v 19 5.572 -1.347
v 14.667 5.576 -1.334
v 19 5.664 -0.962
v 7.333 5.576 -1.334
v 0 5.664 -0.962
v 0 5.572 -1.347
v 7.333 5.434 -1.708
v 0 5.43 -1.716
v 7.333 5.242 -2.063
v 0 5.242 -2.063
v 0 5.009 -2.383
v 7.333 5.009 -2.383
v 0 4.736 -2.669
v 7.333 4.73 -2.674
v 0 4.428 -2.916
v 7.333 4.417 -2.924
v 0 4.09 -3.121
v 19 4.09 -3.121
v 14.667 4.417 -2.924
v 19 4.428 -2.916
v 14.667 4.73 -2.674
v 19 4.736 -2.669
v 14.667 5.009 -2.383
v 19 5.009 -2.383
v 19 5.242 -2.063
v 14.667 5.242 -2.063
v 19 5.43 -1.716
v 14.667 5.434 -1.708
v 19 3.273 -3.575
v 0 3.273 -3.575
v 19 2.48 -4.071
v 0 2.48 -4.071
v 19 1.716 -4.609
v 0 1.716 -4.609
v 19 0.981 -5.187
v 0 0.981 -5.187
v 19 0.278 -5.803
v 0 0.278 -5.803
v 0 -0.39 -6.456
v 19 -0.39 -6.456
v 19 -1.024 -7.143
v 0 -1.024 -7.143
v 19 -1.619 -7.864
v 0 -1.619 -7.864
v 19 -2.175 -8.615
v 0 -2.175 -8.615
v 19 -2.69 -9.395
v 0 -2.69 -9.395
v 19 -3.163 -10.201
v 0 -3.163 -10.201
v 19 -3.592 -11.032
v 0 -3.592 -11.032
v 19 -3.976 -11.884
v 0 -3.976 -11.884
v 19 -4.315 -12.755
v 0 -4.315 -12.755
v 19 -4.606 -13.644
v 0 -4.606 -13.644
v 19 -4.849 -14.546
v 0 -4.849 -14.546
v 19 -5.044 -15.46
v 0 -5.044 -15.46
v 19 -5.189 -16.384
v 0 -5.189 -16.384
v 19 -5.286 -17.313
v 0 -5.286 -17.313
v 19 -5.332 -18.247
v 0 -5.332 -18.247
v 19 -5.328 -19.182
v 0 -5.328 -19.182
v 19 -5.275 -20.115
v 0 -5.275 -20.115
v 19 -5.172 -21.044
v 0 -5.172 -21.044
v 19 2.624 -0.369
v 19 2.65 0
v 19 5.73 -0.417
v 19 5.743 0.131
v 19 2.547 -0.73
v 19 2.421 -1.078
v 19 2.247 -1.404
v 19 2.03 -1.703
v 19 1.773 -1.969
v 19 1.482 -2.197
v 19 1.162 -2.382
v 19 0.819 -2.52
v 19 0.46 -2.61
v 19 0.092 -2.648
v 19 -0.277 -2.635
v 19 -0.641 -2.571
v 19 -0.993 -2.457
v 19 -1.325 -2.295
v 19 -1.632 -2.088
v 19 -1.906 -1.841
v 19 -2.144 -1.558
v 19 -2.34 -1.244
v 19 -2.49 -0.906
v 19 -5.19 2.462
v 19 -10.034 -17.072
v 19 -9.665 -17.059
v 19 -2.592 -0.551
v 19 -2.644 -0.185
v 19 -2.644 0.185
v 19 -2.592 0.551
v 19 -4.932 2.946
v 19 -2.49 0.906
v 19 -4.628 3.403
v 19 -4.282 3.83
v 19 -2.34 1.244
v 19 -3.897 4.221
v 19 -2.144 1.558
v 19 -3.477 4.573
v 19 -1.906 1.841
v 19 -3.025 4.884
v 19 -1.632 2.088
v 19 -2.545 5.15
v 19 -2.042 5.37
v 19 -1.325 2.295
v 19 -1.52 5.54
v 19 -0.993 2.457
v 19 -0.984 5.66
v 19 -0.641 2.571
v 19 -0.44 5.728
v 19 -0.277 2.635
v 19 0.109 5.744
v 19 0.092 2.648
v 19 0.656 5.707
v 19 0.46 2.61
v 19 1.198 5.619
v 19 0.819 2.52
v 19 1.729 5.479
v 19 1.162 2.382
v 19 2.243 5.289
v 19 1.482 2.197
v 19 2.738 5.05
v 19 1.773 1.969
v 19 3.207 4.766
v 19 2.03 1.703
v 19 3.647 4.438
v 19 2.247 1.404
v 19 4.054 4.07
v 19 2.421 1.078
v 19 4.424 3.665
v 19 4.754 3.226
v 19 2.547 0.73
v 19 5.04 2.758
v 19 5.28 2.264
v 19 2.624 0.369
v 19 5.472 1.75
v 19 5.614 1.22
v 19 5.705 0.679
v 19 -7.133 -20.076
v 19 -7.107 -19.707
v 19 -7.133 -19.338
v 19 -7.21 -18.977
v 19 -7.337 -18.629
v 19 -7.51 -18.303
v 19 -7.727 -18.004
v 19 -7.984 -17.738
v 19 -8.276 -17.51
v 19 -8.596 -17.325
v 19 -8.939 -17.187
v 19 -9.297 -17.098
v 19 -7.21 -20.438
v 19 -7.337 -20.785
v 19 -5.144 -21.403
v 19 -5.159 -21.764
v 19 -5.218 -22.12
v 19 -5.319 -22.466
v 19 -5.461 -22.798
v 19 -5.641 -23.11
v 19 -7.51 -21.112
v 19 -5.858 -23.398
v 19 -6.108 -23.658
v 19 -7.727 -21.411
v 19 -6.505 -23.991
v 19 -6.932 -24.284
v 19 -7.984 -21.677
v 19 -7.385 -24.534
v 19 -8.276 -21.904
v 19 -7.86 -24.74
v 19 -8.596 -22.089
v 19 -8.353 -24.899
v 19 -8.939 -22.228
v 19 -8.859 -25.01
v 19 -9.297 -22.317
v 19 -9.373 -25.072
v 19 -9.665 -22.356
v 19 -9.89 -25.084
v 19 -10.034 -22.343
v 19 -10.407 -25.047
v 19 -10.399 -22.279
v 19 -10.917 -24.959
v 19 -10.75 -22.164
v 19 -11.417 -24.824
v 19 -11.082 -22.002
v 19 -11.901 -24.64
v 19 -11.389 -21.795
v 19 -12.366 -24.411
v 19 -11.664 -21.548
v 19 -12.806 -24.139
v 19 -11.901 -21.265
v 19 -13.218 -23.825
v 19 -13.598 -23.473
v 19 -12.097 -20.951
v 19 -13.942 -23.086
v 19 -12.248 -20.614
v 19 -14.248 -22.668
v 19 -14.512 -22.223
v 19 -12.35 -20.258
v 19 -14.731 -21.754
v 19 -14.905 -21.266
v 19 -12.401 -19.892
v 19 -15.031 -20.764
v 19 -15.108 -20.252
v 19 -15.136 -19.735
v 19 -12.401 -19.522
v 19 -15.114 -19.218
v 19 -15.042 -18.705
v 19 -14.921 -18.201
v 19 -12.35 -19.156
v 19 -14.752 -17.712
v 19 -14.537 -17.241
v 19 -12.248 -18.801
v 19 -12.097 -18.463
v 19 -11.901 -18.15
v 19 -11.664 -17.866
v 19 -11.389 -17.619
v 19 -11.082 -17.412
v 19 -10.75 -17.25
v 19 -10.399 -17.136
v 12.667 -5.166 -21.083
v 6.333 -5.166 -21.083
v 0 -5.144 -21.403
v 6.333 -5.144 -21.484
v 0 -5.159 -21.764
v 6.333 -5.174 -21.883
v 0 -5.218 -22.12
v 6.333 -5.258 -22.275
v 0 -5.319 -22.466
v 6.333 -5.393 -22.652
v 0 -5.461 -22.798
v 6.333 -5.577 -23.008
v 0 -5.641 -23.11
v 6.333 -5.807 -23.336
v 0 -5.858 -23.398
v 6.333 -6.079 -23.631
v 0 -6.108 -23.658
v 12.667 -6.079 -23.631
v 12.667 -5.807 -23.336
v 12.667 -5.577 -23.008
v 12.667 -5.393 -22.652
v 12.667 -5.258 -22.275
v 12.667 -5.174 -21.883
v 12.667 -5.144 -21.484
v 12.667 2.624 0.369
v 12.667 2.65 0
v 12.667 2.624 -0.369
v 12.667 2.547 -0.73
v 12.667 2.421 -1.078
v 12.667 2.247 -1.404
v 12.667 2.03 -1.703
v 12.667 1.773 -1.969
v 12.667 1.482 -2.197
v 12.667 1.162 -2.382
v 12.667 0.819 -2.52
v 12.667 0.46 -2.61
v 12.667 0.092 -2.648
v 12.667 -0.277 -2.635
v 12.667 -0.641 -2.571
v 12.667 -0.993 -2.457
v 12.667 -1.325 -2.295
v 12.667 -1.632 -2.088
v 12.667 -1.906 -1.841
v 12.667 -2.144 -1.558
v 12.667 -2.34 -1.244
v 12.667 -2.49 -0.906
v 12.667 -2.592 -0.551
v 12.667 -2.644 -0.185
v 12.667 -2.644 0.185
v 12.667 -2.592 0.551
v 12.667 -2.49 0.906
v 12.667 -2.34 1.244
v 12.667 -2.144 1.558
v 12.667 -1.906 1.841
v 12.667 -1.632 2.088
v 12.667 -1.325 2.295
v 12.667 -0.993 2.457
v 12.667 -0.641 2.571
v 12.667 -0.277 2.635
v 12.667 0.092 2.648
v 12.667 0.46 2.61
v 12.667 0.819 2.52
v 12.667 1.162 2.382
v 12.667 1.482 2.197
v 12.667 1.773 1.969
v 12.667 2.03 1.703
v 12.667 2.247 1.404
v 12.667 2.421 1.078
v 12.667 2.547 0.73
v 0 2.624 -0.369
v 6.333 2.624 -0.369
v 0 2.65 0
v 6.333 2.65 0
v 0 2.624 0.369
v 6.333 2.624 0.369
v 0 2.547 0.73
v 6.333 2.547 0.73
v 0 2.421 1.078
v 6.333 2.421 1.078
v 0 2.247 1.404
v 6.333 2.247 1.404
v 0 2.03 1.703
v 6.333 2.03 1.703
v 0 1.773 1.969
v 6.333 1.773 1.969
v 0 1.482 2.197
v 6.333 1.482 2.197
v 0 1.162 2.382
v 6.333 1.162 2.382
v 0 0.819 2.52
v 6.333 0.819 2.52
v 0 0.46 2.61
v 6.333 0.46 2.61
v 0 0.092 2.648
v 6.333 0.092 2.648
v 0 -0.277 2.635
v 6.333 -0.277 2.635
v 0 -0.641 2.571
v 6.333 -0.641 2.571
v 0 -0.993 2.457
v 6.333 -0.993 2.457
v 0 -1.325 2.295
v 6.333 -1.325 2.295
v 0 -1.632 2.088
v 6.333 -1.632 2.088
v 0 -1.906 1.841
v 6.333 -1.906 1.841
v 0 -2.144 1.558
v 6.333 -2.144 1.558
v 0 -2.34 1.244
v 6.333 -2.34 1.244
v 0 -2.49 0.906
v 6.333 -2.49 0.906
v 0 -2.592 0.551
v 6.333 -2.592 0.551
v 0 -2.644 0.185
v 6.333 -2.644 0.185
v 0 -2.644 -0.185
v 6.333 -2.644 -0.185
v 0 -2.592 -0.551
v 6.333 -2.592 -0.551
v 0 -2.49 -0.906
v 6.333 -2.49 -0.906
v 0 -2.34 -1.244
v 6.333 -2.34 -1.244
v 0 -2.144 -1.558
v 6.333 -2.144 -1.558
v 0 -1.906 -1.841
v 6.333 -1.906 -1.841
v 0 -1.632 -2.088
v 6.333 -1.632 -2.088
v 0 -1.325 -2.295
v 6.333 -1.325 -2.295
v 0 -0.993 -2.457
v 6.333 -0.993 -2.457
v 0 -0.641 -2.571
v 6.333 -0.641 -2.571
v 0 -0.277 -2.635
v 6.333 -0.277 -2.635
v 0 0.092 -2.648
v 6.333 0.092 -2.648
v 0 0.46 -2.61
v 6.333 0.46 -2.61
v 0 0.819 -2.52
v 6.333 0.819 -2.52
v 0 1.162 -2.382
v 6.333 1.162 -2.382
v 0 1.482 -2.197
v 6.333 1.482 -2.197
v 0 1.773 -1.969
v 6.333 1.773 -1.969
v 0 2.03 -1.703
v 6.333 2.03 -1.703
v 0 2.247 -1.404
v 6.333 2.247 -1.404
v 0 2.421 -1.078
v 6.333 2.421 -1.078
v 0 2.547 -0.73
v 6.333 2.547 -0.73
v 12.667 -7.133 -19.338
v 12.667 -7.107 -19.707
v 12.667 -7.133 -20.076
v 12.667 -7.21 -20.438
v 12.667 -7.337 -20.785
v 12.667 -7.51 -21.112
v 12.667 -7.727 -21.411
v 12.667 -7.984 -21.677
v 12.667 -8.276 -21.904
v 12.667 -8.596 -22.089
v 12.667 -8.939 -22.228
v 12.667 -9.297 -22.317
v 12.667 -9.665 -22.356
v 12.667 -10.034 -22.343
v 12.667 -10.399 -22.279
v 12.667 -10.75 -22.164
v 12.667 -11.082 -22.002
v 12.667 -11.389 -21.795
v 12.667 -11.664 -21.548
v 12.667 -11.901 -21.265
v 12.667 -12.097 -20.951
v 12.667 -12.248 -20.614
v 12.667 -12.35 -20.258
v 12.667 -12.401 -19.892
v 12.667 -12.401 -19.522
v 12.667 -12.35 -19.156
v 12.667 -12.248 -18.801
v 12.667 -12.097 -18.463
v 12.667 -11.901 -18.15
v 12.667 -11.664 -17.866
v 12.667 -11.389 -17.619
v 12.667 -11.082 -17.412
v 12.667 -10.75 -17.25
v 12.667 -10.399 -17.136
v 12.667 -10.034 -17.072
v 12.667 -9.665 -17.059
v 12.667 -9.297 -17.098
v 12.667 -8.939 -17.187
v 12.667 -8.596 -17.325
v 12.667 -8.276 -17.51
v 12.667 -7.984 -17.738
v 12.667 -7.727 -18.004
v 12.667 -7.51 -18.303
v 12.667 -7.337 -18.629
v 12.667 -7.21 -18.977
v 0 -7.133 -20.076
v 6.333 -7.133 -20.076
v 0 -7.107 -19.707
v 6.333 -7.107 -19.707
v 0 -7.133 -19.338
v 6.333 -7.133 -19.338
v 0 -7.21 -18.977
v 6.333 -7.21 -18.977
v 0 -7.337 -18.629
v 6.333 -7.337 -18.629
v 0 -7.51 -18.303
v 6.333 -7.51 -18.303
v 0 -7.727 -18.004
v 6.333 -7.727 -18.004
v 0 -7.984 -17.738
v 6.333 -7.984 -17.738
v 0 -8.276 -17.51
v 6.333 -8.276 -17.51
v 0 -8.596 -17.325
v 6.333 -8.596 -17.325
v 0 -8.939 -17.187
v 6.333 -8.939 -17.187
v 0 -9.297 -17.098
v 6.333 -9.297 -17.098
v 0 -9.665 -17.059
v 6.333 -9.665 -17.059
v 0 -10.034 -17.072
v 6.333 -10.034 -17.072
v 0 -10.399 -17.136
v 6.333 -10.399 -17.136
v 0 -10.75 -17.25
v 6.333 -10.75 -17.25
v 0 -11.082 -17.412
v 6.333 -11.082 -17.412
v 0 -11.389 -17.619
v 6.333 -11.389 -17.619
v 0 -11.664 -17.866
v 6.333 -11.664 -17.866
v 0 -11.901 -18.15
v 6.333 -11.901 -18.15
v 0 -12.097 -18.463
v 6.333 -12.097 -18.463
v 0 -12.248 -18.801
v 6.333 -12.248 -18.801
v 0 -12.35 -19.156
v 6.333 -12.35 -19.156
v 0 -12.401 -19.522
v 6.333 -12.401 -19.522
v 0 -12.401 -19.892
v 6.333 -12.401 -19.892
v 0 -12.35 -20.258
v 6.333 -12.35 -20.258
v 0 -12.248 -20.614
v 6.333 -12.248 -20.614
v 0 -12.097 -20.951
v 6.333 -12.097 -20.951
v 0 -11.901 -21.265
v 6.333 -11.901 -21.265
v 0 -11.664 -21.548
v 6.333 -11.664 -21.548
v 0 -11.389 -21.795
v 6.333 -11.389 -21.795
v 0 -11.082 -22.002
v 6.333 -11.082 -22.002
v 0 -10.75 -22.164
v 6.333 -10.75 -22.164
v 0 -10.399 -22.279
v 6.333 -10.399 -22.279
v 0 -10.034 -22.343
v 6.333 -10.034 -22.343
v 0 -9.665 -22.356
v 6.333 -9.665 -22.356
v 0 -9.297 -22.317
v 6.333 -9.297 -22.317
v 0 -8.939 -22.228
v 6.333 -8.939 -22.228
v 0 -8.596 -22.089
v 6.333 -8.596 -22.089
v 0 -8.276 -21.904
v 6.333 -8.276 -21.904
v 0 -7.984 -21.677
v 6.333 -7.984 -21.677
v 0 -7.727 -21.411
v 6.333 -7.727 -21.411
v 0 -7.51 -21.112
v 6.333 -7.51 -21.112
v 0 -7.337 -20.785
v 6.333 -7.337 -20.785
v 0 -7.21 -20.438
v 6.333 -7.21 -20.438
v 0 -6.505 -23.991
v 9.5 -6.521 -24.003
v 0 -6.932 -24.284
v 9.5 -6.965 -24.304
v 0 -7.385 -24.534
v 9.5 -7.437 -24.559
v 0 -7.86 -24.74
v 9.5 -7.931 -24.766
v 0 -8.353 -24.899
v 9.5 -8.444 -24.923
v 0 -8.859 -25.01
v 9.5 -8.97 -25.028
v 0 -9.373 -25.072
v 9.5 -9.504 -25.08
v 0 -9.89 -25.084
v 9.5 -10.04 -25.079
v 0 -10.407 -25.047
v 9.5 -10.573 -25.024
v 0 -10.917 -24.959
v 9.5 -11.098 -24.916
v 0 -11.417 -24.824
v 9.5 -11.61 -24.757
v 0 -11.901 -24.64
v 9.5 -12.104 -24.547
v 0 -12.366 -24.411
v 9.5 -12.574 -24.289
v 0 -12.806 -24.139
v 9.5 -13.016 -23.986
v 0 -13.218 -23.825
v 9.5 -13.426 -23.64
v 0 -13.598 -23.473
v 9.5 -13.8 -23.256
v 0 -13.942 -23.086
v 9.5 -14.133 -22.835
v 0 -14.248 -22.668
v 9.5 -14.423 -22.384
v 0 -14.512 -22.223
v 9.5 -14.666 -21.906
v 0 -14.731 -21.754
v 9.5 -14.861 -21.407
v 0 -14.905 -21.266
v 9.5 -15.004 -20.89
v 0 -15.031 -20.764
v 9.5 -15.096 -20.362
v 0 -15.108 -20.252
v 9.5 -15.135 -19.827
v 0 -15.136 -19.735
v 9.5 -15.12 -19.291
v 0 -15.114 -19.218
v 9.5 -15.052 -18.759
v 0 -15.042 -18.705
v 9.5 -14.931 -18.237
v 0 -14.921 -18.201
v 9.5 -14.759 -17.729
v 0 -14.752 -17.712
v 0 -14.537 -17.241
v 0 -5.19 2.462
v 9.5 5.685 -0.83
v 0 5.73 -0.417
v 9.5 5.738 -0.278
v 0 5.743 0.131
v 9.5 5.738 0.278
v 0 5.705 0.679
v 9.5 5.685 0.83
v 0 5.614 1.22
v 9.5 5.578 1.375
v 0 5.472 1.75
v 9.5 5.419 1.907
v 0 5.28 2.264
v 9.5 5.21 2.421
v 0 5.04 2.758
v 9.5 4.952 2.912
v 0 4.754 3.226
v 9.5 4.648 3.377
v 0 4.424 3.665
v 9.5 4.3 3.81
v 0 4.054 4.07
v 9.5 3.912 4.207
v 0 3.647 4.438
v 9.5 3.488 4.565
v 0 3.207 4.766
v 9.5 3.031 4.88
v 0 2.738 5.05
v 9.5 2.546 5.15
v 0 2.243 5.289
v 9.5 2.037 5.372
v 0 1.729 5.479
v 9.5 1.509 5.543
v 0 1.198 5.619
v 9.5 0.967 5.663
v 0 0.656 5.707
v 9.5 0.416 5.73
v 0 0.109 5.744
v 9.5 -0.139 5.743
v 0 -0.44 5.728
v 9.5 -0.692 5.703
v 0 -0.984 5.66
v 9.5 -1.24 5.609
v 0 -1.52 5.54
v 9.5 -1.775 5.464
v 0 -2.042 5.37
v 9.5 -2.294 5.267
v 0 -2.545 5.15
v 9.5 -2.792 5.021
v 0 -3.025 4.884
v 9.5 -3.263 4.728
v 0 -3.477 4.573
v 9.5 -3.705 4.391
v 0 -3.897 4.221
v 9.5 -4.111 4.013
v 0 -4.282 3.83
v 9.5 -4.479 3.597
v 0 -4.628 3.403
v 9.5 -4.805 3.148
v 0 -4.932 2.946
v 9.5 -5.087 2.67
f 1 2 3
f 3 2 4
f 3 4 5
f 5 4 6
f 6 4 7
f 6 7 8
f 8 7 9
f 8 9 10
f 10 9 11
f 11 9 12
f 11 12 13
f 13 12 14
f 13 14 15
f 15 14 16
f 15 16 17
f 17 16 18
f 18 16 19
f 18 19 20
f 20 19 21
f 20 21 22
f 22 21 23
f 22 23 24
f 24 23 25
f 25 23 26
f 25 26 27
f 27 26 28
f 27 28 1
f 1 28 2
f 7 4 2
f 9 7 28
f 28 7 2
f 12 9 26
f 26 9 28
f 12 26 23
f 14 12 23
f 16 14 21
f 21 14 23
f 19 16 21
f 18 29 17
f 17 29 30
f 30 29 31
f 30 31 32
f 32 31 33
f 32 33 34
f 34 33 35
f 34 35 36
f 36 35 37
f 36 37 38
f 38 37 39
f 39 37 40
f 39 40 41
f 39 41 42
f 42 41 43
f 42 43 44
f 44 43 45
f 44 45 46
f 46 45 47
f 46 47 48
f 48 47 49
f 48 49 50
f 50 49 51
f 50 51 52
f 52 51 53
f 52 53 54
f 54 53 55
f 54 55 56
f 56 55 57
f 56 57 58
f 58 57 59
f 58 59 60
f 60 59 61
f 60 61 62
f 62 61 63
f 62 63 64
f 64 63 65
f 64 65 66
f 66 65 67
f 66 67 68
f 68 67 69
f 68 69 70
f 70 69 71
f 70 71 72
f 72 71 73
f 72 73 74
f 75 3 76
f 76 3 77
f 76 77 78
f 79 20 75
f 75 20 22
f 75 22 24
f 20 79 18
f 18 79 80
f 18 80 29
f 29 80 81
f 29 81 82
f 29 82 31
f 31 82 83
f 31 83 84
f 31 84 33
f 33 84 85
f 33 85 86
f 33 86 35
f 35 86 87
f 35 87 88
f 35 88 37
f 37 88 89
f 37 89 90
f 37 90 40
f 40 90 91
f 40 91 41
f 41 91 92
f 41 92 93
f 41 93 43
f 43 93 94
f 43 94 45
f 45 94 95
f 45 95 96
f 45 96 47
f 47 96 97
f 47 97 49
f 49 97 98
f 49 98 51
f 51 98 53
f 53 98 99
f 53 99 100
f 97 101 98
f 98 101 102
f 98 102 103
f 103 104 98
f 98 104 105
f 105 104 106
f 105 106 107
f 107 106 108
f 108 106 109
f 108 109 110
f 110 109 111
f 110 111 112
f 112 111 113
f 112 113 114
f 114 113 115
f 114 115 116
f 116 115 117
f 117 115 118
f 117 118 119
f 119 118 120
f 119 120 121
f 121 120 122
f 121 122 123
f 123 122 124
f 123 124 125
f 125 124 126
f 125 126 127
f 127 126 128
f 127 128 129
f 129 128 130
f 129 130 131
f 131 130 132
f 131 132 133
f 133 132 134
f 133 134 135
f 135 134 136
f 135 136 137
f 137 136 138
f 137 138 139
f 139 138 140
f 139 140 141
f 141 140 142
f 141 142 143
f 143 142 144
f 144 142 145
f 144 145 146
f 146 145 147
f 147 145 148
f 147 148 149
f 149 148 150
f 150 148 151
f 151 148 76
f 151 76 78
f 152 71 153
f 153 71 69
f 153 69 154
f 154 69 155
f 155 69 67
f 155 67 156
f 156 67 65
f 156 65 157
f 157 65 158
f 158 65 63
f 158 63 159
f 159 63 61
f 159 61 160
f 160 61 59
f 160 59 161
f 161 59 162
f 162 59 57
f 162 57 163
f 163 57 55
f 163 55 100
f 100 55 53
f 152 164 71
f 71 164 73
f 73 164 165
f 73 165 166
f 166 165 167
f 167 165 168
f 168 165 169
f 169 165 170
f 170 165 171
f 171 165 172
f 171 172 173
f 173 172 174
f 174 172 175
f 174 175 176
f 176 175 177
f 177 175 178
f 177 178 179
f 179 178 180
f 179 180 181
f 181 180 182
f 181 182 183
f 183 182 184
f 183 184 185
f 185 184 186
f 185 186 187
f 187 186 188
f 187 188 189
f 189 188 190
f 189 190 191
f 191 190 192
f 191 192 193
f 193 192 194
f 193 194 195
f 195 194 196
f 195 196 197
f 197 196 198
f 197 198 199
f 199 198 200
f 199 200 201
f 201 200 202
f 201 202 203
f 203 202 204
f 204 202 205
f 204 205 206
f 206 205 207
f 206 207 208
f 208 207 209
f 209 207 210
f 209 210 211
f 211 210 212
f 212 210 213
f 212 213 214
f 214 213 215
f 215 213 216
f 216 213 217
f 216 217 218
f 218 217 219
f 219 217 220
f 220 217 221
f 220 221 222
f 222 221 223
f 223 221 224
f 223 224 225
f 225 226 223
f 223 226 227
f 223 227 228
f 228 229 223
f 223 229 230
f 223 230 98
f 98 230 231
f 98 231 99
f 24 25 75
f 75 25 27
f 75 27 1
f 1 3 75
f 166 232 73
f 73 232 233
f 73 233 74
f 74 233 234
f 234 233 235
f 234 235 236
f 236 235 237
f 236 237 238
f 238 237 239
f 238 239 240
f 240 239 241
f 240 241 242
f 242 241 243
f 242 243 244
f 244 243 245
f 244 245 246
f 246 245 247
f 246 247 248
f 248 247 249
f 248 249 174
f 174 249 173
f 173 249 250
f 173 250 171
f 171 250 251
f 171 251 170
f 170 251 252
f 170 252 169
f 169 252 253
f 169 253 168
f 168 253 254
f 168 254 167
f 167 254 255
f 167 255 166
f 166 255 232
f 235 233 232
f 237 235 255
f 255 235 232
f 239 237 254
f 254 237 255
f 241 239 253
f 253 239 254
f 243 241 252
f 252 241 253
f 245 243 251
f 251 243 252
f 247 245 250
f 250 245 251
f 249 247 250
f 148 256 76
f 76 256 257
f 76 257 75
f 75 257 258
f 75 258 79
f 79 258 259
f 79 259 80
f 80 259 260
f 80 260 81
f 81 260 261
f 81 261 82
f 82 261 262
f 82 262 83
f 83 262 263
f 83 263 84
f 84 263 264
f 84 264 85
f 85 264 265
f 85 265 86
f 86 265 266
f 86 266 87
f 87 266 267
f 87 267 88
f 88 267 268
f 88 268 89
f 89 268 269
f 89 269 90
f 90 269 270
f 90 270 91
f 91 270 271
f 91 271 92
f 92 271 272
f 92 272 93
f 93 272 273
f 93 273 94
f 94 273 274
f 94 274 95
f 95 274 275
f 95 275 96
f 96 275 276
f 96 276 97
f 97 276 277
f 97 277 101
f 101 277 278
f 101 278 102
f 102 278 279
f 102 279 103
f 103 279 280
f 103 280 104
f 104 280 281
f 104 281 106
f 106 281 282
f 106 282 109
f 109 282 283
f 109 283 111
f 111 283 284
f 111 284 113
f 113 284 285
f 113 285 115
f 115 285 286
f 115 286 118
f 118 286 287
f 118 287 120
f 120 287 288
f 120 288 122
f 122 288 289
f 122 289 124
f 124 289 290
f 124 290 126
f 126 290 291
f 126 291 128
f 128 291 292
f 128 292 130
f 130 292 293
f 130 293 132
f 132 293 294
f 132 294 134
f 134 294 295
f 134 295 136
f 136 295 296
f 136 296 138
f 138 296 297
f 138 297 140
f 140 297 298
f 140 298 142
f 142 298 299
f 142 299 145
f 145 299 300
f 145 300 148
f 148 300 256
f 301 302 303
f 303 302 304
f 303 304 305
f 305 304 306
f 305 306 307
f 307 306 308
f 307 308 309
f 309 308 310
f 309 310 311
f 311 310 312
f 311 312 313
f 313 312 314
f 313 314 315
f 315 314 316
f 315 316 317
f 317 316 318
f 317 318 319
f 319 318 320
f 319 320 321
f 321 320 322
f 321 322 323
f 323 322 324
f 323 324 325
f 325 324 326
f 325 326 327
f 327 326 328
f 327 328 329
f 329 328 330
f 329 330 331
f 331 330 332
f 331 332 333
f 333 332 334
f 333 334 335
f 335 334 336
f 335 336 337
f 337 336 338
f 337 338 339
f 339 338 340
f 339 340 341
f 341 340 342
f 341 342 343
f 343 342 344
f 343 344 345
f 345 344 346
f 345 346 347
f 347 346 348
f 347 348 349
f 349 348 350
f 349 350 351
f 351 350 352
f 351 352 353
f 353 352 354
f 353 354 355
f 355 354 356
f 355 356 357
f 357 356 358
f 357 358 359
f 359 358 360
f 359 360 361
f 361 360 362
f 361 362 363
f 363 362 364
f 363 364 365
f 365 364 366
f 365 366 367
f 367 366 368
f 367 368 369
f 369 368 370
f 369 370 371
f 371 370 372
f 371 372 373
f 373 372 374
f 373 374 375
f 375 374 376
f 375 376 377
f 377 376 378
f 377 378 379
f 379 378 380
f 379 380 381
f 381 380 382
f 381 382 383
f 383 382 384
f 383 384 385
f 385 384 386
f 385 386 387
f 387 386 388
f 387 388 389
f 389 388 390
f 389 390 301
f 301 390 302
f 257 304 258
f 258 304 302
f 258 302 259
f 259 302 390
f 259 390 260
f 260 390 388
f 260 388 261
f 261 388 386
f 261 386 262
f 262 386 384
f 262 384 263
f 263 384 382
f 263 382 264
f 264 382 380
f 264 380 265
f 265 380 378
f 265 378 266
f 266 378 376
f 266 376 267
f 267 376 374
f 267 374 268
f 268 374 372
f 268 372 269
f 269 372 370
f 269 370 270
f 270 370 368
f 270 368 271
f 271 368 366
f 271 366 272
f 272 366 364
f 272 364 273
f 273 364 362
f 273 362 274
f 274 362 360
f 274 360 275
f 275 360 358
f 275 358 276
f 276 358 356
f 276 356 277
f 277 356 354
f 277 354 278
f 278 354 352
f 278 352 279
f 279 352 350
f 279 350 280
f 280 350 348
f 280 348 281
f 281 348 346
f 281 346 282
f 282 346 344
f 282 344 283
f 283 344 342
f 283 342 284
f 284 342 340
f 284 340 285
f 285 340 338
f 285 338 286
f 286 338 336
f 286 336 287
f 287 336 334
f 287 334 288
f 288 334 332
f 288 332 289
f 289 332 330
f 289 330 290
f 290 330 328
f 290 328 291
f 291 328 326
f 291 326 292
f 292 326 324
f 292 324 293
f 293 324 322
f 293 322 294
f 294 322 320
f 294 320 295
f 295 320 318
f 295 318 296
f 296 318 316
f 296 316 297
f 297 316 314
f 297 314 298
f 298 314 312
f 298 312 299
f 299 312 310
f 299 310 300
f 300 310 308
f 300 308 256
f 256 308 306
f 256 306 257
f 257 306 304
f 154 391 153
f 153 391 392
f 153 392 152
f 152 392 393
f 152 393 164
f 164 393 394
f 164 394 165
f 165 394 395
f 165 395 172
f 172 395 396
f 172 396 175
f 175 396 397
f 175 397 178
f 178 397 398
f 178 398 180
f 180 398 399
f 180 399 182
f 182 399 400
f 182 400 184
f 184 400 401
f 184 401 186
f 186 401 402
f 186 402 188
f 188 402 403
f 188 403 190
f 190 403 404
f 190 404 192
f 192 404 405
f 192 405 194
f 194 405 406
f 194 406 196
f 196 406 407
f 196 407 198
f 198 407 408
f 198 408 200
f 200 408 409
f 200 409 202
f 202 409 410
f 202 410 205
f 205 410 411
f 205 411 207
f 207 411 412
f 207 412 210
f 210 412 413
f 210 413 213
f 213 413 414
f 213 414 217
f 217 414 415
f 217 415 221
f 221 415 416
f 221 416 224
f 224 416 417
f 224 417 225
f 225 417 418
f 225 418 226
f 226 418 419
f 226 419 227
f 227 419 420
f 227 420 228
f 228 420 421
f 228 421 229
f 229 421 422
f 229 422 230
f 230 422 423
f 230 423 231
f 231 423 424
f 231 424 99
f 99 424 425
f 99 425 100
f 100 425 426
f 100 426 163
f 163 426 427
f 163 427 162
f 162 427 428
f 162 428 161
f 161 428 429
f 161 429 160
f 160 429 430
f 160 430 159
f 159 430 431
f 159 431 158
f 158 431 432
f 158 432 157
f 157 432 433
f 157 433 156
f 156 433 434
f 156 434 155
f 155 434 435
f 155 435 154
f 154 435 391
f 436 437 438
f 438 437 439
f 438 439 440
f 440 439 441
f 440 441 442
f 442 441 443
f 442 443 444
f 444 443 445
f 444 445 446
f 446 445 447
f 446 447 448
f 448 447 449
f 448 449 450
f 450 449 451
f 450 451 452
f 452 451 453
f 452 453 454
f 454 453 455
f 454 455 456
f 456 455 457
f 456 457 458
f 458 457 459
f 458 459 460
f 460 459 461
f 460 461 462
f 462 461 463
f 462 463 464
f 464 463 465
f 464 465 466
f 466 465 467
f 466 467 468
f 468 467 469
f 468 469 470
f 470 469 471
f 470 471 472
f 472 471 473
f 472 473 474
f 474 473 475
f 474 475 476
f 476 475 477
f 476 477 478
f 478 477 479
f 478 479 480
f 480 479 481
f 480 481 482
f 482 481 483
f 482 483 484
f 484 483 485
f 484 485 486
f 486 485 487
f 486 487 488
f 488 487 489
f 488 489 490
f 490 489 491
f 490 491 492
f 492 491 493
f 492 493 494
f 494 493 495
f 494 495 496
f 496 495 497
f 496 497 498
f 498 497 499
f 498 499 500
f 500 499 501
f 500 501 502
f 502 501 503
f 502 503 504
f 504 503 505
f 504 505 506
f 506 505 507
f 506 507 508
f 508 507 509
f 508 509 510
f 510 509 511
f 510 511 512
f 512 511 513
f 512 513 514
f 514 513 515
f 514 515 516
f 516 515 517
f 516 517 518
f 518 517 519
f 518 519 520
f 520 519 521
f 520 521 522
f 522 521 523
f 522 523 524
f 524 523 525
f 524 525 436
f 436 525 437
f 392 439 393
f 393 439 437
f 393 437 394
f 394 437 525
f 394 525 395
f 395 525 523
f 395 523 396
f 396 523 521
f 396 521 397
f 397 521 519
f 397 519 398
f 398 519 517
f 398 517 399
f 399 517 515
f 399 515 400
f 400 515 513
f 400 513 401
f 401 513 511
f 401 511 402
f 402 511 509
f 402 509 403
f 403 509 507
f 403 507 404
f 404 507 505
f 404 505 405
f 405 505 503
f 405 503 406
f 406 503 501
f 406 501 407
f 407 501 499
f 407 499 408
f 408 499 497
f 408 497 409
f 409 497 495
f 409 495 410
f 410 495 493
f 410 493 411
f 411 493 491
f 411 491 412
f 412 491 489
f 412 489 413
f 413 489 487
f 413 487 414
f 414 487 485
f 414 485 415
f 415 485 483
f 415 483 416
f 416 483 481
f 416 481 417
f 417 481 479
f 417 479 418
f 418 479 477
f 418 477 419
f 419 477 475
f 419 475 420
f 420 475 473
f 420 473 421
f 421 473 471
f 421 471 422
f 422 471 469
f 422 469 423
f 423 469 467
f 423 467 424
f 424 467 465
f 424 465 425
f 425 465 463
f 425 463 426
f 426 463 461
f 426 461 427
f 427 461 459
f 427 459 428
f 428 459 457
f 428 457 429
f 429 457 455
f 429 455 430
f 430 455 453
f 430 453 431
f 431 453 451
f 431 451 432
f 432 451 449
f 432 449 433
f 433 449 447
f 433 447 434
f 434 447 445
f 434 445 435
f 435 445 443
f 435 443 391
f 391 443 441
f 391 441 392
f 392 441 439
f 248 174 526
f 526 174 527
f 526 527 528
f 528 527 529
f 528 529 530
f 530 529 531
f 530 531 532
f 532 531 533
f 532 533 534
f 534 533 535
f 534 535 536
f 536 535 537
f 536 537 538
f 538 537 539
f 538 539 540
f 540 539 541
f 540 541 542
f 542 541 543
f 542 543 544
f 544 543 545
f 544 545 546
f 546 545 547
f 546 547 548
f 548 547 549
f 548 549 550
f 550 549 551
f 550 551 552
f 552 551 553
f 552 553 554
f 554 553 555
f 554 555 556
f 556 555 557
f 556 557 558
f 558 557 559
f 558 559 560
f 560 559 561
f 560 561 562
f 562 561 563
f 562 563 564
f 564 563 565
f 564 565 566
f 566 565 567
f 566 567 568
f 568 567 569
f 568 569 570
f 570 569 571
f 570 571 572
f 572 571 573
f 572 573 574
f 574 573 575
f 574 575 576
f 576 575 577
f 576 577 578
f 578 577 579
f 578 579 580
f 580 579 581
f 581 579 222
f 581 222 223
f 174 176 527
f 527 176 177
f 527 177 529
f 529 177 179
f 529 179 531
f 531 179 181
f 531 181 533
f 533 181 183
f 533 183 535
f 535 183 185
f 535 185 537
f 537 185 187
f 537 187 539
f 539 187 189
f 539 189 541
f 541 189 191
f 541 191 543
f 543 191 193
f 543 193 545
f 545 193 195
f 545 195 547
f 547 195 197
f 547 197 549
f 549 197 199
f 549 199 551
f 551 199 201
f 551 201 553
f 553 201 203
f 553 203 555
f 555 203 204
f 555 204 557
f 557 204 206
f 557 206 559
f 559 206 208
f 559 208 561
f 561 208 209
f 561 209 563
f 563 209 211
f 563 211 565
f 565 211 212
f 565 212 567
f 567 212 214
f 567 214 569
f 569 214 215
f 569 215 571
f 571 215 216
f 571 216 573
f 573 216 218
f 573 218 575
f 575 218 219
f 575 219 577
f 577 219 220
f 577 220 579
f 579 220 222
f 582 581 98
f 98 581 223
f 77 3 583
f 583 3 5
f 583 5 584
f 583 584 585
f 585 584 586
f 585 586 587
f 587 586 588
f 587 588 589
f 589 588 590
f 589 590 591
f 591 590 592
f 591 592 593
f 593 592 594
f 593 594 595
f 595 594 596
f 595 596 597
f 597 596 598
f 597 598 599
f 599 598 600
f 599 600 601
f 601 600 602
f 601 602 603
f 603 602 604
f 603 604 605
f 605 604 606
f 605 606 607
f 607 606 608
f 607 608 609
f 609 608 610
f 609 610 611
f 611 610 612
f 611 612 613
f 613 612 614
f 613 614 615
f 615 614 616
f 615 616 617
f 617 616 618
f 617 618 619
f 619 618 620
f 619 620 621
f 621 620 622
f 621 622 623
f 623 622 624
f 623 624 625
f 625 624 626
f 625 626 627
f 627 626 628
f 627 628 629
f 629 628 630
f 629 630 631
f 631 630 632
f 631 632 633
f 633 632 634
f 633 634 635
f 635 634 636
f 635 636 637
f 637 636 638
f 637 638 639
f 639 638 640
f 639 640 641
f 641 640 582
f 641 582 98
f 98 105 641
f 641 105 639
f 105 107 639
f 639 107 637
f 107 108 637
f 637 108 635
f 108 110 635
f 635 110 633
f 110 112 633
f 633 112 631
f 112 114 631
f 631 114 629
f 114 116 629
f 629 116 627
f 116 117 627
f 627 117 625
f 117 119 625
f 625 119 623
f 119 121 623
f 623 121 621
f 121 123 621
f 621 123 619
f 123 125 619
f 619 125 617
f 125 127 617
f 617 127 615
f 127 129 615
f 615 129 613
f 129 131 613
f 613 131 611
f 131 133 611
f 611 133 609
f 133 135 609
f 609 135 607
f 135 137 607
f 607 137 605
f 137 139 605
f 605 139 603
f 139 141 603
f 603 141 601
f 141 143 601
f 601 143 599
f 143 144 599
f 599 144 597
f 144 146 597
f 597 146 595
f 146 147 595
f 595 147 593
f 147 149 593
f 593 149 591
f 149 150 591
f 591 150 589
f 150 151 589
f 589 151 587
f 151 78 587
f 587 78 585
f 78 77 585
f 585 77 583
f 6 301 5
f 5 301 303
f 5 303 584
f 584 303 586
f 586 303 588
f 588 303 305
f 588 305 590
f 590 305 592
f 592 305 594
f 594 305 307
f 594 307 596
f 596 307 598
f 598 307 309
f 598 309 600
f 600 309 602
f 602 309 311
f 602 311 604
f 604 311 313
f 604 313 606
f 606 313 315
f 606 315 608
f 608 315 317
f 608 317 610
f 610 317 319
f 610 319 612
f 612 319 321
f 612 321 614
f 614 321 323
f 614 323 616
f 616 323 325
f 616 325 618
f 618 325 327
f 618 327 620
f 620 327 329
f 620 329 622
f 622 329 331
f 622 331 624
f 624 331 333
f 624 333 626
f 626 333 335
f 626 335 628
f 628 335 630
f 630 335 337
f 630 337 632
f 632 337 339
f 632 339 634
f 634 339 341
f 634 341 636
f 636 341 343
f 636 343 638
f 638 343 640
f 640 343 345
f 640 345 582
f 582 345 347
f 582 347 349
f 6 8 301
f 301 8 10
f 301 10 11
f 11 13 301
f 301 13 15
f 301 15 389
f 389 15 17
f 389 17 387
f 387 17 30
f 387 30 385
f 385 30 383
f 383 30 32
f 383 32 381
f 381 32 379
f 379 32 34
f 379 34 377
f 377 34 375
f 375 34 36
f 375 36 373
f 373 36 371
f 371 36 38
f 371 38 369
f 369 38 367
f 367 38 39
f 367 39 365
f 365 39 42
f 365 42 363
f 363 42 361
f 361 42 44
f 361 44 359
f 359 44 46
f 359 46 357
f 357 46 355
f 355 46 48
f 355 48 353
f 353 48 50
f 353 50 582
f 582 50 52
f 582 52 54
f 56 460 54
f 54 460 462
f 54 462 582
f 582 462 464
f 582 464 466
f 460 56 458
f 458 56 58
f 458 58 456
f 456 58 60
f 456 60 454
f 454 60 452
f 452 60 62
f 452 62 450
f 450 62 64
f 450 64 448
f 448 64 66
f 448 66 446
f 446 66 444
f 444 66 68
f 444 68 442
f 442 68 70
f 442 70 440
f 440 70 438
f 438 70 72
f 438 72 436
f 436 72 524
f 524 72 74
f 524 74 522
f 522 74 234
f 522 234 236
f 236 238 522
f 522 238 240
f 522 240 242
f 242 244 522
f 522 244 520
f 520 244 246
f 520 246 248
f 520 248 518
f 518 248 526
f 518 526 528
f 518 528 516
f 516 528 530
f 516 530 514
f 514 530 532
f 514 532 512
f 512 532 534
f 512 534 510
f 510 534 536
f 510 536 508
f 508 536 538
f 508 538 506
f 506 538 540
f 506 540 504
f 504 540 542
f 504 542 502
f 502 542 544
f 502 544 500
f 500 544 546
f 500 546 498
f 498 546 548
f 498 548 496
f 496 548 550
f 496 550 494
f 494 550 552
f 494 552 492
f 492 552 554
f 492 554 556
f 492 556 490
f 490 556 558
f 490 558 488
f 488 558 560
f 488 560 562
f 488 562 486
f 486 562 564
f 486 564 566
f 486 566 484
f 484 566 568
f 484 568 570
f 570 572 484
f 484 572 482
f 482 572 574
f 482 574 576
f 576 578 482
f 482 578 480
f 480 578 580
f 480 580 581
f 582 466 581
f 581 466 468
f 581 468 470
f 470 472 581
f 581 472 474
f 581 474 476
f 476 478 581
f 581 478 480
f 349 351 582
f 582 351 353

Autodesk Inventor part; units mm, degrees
ref_plane "YZ Plane" through (0, 0, 0) normal (1, 0, 0) x (0, 1, 0)
ref_plane "XZ Plane" through (0, 0, 0) normal (0, 1, 0) x (-1, 0, 0)
ref_plane "XY Plane" through (0, 0, 0) normal (0, 0, 1) x (1, 0, 0)
sketch "Sketch1" plane through (0, 0, 0) normal (1, 0, 0) x (0, 1, 0)
  circle A0 centre (-9.7574, -19.7073) radius 1.55 construction
  circle A1 centre (0, 0) radius 1.55 construction
  circle A2 centre (-9.7574, -19.7073) radius 2.65
  circle A3 centre (0, 0) radius 2.65
  line L0 (-6.0684, -24.2876) -> (12.7398, 12.1607) construction
  arc A4 (-12.2239, -24.4871) -> (-4.9776, -22.1738) centre (-9.7574, -19.7073) ccw
  circle A5 centre (0, 0) radius 5.7448
  line L1 (-4.9776, -22.1738) -> (5.1052, -2.6344)
  arc A6 (-4.9776, -22.1738) -> (-12.2239, -24.4871) centre (-9.7574, -19.7073) ccw
  line L2 (-14.5372, -17.2408) -> (-5.1904, 2.4623)
  line L3 (0, 0) -> (0, -27.0135) construction
  line L4 (0, 0) -> (-9.7574, -19.7073) construction
  point P0 (-10.1101, -25.5779)
  dimension "d0" = 5.3
  dimension "d1" = 5.3
  dimension "d3" = 11.4897
  dimension "d4" = 5.3787
  dimension "d5" = 21.8076
  dimension "d6" = 21.9875
extrude "Extrusion1" add sketch "Sketch1" along normal blind 19
sketch "Sketch2" plane through (19, 0, 0) normal (1, 0, 0) x (0, 0, -1)
  arc A0 (17.2408, -14.5372) -> (22.1738, -4.9776) centre (19.7073, -9.7574) ccw projected
  line L0 (22.1738, -4.9776) -> (2.6344, 5.1052) projected
  arc A1 (2.6344, 5.1052) -> (-2.4623, -5.1904) centre (0, 0) ccw projected
  line L1 (-2.4623, -5.1904) -> (17.2408, -14.5372) construction
  circle A2 centre (19.7073, -9.7574) radius 2.65 construction
  circle A3 centre (0, 0) radius 2.65 construction
  circle A4 centre (19.7073, -9.7574) radius 2.65 construction
  line L2 (-0.0042, 0.0021) -> (19.7073, -9.7574) construction
  circle A5 centre (12.4634, 13.9146) radius 1
  circle A6 centre (12.4634, 13.9146) radius 4
  line L3 (9.7462, 16.85) -> (-3.9025, 4.2159)
  arc A7 (2.6344, 5.1052) -> (-2.4623, -5.1904) centre (0, 0) ccw projected
  line L4 (16.2172, 15.2963) -> (24.7549, -7.8995)
  line L5 (-12.5084, -12.3162) -> (6.9664, 27.0174)
  point P0 (-3.9025, 4.2159)
  dimension "d11" = 2
  dimension "d12" = 8
  dimension "d20" = 18
  dimension "d21" = 10.7401
extrude "Extrusion2" [suppressed]
sketch "Sketch3" plane through (19, 0, 0) normal (1, 0, 0) x (0, 0, -1)
  circle A0 centre (12.4634, 13.9146) radius 1 projected
  circle A1 centre (12.4634, 13.9146) radius 2.5
  point P0 (0, 0)
  dimension "d15" = 5
extrude "Extrusion3" [suppressed]
sketch "Sketch4" plane through (19, 0, 0) normal (1, 0, 0) x (0, 0, -1)
  arc A0 (2.6344, 5.1052) -> (-2.4623, -5.1904) centre (0, 0) ccw projected
  line L0 (-2.4623, -5.1904) -> (17.2408, -14.5372) projected
  arc A1 (17.2408, -14.5372) -> (22.1738, -4.9776) centre (19.7073, -9.7574) ccw projected
  line L1 (22.1738, -4.9776) -> (2.6344, 5.1052) projected
  circle A2 centre (19.7073, -9.7574) radius 2.65 projected
  circle A3 centre (0, 0) radius 2.65 projected
  arc A4 (2.6344, 5.1052) -> (-2.4623, -5.1904) centre (0, 0) ccw projected
  arc A5 (17.2408, -14.5372) -> (22.1738, -4.9776) centre (19.7073, -9.7574) ccw projected
  arc A6 (2.6344, 5.1052) -> (22.1738, -4.9776) centre (18.6478, 12.1635) ccw
  dimension "d22" = 17.5
extrude "Extrusion4" cut sketch "Sketch4" against normal through all contours L1 A6
fillet "Fillet1" radius 3 2 edges at (9.5, -4.9776, -22.1738) (9.5, 5.1052, -2.6344)
properties part number "Kauri modular camera mount spacer micro outside" material "Brass, Soft Yellow"
